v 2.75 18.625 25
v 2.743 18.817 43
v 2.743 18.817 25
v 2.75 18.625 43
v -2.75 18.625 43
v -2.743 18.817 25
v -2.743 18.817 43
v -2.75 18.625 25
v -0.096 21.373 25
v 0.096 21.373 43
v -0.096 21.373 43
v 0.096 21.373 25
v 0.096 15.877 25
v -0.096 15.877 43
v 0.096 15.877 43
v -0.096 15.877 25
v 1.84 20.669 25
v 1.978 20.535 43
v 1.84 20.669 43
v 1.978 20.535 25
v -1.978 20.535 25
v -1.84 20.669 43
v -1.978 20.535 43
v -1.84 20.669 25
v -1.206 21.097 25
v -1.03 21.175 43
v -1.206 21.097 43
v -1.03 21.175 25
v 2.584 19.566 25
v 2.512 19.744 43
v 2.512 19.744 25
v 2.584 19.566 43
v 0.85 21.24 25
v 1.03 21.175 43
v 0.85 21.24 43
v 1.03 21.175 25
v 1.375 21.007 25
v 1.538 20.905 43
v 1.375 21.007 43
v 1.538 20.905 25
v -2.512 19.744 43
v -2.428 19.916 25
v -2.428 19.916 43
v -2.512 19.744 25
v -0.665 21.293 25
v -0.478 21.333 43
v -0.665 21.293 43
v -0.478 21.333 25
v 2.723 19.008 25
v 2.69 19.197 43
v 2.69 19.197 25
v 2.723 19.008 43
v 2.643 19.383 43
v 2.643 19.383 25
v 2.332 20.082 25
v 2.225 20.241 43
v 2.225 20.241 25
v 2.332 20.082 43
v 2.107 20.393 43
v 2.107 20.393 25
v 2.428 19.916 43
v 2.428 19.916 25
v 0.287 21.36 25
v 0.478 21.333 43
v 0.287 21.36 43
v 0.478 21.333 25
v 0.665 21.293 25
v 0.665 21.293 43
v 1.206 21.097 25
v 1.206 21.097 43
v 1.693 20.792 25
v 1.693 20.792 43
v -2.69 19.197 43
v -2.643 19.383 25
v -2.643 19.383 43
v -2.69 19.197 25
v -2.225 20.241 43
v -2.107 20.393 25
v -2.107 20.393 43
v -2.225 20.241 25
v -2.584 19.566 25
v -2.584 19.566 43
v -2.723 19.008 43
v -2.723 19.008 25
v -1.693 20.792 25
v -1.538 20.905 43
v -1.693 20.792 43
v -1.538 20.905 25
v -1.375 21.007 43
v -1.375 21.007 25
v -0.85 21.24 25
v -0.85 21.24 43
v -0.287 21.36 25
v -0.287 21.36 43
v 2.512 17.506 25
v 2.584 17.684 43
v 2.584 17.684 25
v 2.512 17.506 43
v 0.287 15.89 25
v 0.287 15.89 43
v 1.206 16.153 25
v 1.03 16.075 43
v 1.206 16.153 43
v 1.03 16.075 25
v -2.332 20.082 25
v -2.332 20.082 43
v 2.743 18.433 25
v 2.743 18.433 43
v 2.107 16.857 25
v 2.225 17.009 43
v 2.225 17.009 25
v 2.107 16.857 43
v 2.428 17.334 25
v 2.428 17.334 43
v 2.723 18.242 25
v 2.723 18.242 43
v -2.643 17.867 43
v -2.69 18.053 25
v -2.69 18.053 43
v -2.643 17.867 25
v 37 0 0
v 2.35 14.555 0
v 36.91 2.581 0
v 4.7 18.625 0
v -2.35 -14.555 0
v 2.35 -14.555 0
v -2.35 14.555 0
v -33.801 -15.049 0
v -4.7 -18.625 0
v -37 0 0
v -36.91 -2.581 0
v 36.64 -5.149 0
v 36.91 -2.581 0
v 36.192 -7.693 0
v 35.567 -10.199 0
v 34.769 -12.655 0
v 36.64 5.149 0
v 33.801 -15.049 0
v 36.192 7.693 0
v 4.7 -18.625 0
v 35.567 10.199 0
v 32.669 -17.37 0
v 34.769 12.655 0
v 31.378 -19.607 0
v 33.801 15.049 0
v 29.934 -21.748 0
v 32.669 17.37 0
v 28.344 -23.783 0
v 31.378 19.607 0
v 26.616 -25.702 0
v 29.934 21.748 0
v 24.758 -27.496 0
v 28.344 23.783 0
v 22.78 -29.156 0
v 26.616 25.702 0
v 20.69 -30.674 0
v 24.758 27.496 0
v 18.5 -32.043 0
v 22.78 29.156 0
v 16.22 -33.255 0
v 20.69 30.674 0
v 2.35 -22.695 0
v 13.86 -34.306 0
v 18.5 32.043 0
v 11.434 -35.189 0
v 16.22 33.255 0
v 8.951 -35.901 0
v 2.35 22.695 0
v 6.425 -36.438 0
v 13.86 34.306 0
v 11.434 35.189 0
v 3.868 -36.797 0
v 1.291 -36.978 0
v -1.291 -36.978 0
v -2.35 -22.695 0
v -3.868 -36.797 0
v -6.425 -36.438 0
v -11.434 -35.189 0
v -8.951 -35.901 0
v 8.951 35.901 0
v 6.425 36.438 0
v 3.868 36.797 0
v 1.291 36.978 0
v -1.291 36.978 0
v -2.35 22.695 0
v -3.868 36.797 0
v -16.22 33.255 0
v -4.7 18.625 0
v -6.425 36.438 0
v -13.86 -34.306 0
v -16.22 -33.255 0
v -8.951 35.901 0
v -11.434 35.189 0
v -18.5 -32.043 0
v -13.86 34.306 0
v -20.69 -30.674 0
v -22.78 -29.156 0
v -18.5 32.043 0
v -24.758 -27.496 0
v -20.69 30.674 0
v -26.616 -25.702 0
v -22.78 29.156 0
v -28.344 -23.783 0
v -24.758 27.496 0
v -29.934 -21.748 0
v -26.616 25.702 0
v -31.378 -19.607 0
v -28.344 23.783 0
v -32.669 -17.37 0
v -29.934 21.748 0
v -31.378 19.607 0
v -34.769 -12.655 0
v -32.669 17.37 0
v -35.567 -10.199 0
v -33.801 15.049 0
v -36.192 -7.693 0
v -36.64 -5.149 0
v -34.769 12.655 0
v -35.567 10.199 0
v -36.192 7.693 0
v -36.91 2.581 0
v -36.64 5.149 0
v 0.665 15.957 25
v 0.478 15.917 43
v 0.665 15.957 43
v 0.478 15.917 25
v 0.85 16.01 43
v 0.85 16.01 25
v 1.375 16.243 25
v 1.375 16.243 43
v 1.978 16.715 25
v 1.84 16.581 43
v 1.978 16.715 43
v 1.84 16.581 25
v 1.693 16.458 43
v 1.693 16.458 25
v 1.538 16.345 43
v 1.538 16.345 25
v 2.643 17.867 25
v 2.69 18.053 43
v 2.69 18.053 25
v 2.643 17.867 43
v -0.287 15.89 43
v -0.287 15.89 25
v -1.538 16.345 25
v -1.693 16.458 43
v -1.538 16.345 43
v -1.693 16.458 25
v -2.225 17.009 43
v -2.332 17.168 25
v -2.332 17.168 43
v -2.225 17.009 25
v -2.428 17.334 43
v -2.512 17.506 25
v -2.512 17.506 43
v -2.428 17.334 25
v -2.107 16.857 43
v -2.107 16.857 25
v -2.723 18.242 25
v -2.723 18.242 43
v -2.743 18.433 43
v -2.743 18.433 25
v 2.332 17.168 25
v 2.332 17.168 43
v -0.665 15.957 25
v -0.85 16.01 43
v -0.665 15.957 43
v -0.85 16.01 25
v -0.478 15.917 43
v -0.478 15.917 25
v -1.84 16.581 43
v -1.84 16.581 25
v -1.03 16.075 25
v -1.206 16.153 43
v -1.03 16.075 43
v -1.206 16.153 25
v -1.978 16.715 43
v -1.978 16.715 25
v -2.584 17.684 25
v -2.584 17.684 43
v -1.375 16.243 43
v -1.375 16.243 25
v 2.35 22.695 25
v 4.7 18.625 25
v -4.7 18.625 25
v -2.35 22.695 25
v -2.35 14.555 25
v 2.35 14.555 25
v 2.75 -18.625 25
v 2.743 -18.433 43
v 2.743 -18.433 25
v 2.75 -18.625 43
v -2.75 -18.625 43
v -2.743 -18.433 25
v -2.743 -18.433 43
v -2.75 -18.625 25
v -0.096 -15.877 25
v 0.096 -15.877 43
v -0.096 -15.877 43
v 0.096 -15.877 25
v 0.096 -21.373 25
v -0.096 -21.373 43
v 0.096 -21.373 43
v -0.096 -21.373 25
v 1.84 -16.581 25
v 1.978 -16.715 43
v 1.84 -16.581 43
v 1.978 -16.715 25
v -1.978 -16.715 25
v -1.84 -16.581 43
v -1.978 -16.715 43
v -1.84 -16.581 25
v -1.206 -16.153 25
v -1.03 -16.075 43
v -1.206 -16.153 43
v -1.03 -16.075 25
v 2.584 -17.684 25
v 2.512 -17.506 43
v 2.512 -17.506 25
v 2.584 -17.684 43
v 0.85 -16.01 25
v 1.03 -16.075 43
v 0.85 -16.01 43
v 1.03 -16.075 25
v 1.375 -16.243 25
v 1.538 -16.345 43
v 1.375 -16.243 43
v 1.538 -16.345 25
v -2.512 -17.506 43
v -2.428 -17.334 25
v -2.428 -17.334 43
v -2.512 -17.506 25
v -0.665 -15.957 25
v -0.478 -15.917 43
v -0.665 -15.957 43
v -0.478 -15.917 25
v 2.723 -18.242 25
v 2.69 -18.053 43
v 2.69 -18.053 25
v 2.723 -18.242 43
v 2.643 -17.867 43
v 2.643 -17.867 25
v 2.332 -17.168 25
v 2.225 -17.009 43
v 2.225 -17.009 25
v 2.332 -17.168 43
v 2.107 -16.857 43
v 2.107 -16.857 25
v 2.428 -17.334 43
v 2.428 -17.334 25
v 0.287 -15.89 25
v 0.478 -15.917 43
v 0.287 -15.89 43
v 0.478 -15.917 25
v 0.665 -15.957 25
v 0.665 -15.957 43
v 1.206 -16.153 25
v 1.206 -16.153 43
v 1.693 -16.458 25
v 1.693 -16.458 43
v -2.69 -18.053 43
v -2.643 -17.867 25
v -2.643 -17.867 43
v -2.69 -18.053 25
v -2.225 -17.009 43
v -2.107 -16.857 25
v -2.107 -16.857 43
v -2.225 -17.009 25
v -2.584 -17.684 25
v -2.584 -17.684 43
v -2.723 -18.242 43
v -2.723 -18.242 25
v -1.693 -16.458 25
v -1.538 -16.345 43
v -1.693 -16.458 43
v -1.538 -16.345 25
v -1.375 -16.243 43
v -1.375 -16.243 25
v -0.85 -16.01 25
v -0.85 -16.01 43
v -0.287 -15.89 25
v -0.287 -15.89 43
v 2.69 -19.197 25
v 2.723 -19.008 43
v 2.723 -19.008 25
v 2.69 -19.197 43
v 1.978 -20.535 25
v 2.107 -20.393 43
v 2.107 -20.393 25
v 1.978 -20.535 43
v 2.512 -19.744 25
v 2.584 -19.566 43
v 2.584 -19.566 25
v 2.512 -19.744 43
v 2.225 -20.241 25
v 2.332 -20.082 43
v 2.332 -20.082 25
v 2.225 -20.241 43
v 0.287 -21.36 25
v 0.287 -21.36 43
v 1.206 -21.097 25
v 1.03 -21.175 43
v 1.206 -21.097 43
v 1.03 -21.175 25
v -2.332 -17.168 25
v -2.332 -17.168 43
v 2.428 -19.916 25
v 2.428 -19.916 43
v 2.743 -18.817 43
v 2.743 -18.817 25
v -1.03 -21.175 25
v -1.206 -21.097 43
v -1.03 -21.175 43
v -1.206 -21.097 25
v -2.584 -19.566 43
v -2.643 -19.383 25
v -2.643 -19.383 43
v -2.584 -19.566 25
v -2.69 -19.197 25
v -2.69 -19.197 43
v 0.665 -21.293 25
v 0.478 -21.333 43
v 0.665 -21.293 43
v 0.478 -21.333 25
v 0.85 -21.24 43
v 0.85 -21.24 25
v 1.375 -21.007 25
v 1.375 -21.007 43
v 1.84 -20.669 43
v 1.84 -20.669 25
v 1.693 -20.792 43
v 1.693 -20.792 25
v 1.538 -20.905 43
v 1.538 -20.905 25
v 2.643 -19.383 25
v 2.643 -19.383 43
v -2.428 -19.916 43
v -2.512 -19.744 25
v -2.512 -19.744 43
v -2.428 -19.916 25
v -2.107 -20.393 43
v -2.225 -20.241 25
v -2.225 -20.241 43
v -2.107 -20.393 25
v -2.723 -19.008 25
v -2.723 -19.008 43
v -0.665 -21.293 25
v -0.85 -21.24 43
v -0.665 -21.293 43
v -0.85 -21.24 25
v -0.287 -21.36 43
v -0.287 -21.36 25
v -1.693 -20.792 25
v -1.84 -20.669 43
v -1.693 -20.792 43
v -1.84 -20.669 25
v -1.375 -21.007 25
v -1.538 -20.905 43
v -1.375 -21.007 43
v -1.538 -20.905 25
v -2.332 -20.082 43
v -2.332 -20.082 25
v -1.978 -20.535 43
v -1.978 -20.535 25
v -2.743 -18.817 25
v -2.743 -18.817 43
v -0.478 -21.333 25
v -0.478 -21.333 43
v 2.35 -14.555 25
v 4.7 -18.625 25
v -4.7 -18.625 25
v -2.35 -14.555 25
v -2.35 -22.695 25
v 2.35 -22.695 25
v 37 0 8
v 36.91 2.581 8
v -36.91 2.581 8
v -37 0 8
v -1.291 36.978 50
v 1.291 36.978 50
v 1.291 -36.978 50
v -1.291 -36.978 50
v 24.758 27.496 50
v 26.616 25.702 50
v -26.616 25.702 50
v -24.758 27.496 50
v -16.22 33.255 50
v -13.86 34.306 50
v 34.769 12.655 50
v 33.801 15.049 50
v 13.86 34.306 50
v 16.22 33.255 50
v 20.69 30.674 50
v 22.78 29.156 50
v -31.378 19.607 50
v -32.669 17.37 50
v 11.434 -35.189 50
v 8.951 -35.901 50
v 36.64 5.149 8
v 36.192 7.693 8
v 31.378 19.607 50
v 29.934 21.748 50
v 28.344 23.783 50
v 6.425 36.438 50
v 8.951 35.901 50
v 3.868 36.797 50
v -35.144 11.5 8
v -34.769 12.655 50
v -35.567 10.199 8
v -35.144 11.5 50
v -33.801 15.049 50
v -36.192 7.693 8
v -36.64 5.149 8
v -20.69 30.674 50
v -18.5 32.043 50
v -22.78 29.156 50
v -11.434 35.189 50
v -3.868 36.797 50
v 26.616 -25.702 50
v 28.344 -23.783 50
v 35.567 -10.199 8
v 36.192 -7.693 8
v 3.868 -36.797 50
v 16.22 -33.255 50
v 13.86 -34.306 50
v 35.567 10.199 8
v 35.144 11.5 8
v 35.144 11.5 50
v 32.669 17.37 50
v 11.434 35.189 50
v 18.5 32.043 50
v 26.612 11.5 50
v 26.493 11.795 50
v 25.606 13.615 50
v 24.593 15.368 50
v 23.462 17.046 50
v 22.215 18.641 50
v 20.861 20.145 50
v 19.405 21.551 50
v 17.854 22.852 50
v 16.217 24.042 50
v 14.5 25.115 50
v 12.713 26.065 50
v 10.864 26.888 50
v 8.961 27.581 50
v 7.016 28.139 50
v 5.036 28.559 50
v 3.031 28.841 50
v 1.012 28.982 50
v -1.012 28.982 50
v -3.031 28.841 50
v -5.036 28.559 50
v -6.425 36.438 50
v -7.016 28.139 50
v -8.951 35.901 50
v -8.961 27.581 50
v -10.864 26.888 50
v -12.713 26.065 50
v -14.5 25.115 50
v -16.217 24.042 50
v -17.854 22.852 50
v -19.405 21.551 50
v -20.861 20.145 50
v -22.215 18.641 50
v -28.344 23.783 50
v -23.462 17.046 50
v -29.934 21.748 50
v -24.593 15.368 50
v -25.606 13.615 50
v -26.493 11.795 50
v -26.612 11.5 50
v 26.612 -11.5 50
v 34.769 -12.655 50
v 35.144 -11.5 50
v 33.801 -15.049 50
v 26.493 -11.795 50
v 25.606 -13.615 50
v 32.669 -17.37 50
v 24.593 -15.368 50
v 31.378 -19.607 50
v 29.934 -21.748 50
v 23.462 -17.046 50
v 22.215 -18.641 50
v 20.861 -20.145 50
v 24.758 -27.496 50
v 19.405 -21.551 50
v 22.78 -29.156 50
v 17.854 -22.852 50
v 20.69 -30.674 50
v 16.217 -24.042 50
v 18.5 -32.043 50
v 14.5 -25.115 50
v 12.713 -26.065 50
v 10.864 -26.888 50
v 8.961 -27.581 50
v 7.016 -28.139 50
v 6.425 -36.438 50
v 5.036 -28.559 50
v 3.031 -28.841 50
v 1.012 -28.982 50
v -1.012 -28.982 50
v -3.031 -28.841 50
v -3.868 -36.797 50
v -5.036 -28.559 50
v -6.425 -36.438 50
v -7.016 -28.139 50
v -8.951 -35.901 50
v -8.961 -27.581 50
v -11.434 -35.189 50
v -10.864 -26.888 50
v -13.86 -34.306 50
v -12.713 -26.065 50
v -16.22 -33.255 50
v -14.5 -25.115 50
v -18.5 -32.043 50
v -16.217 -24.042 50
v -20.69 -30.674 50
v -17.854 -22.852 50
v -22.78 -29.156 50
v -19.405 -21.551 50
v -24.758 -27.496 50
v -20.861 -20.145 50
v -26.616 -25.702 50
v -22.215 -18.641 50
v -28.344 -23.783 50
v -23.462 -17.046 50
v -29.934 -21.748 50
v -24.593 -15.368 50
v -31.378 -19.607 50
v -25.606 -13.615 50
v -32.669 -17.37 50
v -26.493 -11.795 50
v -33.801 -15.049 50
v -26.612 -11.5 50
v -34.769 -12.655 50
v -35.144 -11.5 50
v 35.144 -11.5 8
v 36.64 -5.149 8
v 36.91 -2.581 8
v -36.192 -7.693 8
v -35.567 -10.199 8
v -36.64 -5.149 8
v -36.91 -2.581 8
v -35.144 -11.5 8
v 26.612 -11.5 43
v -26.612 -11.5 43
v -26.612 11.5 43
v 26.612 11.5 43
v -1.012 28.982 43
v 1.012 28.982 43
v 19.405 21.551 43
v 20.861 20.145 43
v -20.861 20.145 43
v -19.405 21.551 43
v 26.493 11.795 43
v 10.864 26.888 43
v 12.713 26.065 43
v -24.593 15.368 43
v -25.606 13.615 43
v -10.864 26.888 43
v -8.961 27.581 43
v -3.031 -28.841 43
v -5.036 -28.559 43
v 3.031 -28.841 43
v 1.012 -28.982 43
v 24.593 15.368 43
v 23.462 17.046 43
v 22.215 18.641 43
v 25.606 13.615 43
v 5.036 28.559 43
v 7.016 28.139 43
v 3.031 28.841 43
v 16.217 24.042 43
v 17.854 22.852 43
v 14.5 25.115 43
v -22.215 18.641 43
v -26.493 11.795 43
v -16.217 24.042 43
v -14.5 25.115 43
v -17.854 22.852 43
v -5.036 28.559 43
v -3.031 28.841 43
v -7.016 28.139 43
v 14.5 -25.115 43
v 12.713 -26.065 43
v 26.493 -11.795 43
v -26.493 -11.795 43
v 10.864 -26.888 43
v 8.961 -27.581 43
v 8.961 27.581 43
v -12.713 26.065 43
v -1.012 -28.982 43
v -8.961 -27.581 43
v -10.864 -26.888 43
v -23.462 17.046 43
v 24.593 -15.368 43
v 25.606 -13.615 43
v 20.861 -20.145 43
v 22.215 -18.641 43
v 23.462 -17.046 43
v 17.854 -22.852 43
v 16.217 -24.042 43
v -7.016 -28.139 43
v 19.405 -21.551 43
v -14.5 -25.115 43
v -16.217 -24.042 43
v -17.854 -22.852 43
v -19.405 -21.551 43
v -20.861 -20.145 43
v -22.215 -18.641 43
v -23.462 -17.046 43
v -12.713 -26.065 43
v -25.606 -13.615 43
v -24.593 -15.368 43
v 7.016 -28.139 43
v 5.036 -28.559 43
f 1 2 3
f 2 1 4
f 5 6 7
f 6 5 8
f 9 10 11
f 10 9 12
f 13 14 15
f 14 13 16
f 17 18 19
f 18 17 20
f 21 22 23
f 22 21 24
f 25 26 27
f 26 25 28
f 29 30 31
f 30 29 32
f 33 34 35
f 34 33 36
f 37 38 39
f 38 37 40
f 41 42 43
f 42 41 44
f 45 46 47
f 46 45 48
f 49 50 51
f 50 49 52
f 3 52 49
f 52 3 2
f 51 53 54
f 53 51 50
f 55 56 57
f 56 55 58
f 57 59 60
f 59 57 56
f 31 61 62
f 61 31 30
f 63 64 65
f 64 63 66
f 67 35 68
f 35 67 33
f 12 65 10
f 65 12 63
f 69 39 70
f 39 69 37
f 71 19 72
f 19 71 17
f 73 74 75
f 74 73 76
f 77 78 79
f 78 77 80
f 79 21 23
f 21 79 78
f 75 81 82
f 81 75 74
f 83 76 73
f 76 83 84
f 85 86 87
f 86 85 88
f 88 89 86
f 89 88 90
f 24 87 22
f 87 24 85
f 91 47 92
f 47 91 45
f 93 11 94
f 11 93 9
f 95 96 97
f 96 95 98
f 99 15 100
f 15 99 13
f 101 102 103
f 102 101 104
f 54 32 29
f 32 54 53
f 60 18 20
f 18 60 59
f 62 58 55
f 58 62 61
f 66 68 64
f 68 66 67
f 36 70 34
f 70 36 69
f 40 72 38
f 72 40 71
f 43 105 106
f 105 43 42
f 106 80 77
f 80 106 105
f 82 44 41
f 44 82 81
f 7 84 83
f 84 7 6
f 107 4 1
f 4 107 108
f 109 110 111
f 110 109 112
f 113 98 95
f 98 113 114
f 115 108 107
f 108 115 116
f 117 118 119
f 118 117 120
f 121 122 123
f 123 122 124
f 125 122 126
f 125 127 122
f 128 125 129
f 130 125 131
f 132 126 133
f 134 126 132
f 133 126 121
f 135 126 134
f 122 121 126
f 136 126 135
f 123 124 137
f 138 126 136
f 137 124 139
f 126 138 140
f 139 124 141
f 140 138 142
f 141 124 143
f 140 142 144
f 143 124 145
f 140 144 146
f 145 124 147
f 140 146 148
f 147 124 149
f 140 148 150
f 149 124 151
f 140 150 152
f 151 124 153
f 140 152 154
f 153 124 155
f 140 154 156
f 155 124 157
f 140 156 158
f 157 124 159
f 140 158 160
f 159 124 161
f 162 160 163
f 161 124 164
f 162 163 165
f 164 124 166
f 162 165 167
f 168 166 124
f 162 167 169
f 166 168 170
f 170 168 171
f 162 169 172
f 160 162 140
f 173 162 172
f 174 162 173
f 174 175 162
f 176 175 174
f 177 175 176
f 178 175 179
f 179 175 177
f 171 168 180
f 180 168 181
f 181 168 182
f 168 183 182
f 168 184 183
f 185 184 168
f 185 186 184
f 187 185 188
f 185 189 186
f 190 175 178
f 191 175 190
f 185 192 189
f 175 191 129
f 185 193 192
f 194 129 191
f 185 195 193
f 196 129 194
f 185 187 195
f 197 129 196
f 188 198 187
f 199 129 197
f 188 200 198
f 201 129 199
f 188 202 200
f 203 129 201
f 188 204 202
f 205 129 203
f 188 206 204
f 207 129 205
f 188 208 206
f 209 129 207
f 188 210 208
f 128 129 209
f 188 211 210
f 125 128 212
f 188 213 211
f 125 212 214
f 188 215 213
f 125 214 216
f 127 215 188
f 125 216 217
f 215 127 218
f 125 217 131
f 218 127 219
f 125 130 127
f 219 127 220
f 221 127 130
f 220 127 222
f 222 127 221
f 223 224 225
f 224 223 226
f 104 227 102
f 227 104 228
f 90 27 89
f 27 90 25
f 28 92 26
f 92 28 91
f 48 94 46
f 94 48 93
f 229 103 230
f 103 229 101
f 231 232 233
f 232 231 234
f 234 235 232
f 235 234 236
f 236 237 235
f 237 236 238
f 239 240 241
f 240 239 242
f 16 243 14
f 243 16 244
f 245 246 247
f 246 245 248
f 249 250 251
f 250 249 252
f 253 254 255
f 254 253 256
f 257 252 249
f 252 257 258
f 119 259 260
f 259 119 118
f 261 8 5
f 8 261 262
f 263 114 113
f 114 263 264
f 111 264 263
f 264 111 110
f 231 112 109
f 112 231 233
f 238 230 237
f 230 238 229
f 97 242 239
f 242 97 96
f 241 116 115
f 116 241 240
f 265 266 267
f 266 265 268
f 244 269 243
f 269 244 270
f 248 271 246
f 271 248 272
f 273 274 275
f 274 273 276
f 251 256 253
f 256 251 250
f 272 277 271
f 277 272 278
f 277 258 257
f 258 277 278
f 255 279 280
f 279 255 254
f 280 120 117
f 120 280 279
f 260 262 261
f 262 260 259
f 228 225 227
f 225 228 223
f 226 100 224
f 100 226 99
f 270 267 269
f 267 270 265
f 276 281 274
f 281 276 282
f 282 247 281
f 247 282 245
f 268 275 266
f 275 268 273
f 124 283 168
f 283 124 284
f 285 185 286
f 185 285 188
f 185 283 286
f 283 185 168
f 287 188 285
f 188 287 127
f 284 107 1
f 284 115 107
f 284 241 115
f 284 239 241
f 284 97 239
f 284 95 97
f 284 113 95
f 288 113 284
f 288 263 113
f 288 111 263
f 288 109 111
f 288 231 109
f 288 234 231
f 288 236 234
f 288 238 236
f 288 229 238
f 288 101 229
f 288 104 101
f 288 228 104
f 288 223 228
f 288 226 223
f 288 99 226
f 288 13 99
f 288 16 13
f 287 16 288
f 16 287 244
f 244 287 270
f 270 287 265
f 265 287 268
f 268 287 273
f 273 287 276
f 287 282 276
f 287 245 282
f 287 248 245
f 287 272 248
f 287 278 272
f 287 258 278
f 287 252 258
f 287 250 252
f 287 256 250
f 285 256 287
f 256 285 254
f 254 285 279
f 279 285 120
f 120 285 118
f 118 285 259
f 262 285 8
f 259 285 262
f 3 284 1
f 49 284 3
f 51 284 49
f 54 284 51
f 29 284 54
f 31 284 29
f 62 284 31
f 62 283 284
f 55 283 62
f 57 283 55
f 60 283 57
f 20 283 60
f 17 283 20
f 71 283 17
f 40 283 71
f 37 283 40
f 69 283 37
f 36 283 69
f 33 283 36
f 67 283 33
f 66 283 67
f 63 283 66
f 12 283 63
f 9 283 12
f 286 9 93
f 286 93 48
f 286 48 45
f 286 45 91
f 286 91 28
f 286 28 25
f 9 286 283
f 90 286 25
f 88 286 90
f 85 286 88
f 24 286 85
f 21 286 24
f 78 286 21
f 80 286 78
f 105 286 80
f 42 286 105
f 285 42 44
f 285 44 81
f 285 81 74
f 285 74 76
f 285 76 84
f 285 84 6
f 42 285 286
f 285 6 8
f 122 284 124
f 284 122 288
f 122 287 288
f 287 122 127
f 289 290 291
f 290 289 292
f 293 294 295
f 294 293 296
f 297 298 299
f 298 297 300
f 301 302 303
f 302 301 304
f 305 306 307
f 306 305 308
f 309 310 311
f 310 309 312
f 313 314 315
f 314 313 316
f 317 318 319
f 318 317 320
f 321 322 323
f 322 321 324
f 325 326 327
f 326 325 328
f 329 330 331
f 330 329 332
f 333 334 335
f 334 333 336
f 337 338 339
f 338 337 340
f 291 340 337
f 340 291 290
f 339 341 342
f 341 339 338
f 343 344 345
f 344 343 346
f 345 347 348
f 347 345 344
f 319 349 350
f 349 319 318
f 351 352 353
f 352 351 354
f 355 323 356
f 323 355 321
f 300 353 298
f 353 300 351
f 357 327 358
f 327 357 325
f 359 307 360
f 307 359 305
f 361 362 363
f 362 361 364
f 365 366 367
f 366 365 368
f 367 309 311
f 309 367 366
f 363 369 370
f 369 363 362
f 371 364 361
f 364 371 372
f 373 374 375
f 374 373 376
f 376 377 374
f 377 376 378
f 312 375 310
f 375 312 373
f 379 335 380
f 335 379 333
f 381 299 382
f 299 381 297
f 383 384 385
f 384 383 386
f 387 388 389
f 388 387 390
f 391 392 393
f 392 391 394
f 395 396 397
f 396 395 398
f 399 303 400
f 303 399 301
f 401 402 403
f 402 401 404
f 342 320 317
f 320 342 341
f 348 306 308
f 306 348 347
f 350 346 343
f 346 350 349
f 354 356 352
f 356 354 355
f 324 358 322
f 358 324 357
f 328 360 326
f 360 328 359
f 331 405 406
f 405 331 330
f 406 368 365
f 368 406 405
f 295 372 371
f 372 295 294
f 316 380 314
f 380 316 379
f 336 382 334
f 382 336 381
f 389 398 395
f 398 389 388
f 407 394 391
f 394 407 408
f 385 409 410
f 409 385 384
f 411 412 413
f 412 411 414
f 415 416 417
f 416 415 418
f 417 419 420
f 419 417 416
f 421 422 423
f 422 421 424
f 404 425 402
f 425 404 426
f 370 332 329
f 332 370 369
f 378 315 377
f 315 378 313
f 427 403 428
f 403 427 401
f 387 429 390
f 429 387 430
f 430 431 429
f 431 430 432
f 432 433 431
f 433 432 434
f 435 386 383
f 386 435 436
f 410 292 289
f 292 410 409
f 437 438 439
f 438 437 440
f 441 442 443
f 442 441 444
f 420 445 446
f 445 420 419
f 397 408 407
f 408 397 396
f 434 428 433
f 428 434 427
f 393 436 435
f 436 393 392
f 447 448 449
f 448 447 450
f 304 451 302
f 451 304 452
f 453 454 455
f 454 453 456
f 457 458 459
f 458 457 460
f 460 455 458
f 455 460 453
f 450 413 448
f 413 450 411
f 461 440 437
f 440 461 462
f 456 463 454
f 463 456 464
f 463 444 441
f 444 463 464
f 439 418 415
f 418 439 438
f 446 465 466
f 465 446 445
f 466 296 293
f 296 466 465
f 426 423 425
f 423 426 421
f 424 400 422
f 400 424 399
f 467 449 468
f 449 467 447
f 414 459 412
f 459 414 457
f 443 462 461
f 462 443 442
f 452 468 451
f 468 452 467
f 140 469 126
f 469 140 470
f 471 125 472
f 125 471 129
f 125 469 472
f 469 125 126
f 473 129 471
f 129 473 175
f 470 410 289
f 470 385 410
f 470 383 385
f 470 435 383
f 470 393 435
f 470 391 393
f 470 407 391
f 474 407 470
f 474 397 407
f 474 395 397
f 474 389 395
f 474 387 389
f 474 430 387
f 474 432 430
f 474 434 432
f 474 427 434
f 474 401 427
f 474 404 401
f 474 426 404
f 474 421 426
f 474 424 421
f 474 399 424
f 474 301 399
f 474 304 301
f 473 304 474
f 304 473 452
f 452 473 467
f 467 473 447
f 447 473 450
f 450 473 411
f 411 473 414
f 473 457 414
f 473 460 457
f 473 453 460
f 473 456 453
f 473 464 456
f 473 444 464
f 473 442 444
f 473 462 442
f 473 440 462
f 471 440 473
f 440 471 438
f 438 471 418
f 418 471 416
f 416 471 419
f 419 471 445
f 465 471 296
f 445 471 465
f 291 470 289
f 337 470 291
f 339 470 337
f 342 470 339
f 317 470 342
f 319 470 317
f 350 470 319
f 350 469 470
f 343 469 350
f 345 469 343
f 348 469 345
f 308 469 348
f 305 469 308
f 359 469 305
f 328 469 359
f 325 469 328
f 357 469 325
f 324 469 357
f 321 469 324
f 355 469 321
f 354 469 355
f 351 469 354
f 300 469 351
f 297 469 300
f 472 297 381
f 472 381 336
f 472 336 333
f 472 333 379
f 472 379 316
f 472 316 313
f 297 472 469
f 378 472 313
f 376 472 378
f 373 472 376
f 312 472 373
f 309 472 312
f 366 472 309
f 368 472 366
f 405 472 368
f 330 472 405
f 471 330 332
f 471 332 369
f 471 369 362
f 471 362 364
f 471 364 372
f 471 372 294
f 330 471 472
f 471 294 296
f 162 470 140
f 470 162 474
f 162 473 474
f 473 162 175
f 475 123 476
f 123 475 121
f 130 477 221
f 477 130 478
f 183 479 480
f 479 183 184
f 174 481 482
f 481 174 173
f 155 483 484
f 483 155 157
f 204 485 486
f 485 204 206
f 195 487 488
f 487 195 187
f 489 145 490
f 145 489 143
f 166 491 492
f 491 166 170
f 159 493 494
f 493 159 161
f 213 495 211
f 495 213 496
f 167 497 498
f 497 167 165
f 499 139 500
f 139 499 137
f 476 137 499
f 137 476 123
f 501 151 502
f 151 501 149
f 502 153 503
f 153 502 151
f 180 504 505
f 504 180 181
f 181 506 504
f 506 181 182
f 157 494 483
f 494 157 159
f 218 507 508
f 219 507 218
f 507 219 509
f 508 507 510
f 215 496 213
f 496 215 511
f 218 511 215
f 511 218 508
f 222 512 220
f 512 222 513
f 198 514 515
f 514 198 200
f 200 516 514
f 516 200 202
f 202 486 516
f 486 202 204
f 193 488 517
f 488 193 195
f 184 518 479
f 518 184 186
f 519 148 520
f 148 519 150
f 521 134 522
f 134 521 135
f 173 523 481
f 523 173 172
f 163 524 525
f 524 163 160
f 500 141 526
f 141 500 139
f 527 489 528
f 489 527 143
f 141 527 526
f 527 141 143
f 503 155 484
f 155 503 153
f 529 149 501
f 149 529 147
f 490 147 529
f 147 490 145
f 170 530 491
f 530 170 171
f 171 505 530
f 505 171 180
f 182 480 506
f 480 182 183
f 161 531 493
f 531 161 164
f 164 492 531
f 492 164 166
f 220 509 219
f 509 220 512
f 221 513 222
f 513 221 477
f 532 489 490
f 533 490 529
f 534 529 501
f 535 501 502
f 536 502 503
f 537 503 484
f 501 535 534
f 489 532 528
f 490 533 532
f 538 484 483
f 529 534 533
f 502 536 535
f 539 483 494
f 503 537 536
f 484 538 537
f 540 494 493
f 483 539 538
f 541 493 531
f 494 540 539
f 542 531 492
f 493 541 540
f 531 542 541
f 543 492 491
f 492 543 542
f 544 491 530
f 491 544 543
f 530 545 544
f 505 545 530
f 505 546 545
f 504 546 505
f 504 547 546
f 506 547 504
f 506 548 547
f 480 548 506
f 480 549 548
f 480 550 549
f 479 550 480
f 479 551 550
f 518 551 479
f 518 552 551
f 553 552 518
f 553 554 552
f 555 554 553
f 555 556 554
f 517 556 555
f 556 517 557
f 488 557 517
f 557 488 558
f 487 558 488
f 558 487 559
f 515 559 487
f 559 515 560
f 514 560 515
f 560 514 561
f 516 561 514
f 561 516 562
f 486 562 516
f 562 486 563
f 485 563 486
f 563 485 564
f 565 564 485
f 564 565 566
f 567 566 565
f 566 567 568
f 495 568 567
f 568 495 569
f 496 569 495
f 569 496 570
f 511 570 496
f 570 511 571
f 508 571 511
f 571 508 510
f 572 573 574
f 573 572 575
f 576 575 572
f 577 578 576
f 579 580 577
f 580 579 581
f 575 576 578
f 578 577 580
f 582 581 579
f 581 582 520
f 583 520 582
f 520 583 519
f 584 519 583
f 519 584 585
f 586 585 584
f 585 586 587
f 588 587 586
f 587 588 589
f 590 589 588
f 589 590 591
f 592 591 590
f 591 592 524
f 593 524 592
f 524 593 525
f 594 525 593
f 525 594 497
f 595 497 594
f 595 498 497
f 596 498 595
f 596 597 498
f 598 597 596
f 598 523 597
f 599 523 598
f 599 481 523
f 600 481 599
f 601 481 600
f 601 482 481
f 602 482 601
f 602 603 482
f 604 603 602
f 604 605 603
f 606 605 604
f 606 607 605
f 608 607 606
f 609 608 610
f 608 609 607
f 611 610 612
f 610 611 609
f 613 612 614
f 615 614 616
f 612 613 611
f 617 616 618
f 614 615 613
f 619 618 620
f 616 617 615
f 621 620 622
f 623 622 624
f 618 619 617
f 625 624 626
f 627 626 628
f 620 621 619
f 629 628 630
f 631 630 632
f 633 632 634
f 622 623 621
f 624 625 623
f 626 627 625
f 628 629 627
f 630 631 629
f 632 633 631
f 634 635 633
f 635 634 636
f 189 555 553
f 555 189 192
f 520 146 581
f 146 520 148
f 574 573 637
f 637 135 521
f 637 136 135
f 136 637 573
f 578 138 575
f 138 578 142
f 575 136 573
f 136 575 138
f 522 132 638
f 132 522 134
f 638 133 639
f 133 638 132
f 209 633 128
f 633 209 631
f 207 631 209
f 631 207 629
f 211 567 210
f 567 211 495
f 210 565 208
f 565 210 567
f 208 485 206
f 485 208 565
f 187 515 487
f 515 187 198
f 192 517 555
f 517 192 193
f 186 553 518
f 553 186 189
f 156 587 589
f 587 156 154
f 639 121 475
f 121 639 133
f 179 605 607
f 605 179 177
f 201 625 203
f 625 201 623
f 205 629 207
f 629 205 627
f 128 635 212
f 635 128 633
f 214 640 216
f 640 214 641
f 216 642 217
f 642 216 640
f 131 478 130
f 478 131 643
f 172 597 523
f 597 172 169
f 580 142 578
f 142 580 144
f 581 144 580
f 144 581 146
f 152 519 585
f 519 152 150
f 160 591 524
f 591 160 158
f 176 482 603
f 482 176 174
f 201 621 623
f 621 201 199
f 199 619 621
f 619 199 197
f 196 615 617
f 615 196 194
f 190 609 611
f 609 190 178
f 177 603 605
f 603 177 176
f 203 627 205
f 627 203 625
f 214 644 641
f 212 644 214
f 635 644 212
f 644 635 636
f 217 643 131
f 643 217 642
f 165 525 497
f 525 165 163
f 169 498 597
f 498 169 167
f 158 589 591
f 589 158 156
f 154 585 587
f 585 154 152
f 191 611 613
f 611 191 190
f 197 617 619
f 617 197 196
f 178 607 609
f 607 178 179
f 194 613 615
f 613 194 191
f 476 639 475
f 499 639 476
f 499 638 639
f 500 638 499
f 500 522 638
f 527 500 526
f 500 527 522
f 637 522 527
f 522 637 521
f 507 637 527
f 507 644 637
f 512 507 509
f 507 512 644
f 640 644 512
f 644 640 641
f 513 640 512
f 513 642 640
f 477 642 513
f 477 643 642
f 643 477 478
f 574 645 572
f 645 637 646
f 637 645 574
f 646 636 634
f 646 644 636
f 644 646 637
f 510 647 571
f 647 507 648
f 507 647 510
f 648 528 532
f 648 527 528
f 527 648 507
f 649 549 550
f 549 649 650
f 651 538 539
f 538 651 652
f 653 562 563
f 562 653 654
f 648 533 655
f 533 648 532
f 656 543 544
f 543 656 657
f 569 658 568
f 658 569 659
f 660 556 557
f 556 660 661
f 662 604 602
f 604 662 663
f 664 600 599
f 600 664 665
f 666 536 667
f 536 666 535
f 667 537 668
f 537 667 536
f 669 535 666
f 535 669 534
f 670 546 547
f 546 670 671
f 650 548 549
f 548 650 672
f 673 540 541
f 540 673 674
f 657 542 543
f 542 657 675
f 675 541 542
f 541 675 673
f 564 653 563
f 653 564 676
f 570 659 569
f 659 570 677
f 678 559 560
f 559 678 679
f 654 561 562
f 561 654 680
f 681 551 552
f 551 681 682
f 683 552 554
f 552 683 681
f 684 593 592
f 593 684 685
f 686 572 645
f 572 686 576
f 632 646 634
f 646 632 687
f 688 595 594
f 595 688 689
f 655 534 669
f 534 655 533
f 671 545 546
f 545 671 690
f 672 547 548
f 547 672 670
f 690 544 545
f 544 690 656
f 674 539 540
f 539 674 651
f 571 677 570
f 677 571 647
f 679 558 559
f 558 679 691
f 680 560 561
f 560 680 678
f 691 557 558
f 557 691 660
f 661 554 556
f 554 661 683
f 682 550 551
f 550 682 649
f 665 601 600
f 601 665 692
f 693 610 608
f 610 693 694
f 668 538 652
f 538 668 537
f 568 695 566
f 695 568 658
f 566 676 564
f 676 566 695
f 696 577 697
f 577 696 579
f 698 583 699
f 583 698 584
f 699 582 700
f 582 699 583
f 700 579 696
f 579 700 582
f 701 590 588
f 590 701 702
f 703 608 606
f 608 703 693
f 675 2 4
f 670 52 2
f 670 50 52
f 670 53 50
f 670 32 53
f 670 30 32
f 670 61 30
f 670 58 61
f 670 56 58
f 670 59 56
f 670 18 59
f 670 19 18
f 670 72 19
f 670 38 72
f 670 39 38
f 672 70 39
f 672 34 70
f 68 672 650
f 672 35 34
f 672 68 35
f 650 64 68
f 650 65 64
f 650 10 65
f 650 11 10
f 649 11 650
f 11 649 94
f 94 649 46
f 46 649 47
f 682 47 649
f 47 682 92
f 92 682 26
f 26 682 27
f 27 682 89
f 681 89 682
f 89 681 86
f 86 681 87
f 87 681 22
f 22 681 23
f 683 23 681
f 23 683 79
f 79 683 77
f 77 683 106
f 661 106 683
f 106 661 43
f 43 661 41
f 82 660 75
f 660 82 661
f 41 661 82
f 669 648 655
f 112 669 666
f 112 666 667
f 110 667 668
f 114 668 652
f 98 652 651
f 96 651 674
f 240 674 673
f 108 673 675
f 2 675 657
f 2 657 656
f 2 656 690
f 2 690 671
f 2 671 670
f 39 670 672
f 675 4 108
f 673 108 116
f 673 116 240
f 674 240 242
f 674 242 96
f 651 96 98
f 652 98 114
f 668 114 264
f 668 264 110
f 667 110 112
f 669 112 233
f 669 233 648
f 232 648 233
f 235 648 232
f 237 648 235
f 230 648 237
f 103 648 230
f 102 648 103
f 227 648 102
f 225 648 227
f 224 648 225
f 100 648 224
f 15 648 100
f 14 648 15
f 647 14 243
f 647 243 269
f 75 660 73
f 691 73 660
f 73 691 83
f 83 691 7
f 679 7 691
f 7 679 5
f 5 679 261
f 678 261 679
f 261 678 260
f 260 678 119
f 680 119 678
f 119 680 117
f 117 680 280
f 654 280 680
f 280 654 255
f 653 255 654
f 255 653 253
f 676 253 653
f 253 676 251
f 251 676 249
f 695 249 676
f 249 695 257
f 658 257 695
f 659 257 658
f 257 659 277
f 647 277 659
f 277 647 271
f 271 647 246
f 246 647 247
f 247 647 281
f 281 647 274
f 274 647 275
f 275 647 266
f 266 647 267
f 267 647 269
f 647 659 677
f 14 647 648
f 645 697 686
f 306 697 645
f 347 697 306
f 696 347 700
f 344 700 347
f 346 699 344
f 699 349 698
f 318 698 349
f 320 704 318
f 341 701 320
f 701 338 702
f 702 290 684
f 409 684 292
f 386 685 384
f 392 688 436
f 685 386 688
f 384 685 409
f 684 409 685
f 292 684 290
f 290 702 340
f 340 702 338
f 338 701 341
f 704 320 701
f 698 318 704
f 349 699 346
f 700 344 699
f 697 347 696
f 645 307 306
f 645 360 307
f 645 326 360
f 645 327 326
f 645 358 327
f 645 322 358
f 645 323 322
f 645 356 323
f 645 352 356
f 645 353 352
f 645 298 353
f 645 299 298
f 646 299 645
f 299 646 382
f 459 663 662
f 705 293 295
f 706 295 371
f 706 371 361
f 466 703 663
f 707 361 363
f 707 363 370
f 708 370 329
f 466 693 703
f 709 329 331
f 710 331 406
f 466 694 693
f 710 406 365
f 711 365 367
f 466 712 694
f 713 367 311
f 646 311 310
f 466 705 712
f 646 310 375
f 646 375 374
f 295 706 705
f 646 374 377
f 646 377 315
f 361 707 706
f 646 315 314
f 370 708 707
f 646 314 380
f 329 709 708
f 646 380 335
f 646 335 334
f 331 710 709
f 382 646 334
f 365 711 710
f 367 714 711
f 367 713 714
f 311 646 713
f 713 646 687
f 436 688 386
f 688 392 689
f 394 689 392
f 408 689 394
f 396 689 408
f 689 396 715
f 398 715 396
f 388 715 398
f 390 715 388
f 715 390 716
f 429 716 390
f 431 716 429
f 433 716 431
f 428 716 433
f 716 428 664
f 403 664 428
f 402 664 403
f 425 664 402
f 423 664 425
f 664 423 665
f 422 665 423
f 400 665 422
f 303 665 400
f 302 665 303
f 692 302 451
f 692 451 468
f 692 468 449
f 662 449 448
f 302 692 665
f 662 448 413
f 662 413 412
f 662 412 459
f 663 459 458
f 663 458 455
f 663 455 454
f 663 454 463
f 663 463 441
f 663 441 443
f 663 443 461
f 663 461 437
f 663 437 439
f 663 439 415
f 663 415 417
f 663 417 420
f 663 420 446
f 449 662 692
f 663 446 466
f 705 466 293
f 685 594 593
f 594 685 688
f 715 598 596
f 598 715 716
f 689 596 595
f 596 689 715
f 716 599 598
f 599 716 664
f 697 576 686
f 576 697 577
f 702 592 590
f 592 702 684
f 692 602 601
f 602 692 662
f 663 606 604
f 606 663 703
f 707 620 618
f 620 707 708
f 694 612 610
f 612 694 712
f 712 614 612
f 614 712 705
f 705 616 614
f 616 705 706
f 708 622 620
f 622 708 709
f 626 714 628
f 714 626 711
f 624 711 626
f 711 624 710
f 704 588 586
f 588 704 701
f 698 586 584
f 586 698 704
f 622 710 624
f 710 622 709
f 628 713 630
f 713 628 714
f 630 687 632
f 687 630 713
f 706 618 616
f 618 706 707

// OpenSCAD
include <Parameters.scad>
$fn=90;
switch_diameter = 58;
switch_mounting_screws_distance = (31+43.5)/2;
switch_height = 50;
switch_screws_width = 23;
wall_thickness = 8;

difference(){
    cylinder(d = switch_diameter + 2 * wall_thickness, h=switch_height);

    translate([- switch_diameter, -switch_screws_width/2, wall_thickness])
        cube([2*switch_diameter,switch_screws_width,switch_height]);

    translate([ 0, 0, switch_height - 7])
        cylinder(d = switch_diameter,h=50);


    translate([0,switch_mounting_screws_distance/2,0])
    {
        cylinder(d = M5_screw_diameter,h = 50);
        cylinder(d = M5_nut_diameter,h = switch_height/2, $fn = 6);
    }

    translate([0,-switch_mounting_screws_distance/2,0])
    {
        cylinder(d = M5_screw_diameter,h = 50);
        cylinder(d = M5_nut_diameter,h = switch_height/2, $fn = 6);
    }
}
